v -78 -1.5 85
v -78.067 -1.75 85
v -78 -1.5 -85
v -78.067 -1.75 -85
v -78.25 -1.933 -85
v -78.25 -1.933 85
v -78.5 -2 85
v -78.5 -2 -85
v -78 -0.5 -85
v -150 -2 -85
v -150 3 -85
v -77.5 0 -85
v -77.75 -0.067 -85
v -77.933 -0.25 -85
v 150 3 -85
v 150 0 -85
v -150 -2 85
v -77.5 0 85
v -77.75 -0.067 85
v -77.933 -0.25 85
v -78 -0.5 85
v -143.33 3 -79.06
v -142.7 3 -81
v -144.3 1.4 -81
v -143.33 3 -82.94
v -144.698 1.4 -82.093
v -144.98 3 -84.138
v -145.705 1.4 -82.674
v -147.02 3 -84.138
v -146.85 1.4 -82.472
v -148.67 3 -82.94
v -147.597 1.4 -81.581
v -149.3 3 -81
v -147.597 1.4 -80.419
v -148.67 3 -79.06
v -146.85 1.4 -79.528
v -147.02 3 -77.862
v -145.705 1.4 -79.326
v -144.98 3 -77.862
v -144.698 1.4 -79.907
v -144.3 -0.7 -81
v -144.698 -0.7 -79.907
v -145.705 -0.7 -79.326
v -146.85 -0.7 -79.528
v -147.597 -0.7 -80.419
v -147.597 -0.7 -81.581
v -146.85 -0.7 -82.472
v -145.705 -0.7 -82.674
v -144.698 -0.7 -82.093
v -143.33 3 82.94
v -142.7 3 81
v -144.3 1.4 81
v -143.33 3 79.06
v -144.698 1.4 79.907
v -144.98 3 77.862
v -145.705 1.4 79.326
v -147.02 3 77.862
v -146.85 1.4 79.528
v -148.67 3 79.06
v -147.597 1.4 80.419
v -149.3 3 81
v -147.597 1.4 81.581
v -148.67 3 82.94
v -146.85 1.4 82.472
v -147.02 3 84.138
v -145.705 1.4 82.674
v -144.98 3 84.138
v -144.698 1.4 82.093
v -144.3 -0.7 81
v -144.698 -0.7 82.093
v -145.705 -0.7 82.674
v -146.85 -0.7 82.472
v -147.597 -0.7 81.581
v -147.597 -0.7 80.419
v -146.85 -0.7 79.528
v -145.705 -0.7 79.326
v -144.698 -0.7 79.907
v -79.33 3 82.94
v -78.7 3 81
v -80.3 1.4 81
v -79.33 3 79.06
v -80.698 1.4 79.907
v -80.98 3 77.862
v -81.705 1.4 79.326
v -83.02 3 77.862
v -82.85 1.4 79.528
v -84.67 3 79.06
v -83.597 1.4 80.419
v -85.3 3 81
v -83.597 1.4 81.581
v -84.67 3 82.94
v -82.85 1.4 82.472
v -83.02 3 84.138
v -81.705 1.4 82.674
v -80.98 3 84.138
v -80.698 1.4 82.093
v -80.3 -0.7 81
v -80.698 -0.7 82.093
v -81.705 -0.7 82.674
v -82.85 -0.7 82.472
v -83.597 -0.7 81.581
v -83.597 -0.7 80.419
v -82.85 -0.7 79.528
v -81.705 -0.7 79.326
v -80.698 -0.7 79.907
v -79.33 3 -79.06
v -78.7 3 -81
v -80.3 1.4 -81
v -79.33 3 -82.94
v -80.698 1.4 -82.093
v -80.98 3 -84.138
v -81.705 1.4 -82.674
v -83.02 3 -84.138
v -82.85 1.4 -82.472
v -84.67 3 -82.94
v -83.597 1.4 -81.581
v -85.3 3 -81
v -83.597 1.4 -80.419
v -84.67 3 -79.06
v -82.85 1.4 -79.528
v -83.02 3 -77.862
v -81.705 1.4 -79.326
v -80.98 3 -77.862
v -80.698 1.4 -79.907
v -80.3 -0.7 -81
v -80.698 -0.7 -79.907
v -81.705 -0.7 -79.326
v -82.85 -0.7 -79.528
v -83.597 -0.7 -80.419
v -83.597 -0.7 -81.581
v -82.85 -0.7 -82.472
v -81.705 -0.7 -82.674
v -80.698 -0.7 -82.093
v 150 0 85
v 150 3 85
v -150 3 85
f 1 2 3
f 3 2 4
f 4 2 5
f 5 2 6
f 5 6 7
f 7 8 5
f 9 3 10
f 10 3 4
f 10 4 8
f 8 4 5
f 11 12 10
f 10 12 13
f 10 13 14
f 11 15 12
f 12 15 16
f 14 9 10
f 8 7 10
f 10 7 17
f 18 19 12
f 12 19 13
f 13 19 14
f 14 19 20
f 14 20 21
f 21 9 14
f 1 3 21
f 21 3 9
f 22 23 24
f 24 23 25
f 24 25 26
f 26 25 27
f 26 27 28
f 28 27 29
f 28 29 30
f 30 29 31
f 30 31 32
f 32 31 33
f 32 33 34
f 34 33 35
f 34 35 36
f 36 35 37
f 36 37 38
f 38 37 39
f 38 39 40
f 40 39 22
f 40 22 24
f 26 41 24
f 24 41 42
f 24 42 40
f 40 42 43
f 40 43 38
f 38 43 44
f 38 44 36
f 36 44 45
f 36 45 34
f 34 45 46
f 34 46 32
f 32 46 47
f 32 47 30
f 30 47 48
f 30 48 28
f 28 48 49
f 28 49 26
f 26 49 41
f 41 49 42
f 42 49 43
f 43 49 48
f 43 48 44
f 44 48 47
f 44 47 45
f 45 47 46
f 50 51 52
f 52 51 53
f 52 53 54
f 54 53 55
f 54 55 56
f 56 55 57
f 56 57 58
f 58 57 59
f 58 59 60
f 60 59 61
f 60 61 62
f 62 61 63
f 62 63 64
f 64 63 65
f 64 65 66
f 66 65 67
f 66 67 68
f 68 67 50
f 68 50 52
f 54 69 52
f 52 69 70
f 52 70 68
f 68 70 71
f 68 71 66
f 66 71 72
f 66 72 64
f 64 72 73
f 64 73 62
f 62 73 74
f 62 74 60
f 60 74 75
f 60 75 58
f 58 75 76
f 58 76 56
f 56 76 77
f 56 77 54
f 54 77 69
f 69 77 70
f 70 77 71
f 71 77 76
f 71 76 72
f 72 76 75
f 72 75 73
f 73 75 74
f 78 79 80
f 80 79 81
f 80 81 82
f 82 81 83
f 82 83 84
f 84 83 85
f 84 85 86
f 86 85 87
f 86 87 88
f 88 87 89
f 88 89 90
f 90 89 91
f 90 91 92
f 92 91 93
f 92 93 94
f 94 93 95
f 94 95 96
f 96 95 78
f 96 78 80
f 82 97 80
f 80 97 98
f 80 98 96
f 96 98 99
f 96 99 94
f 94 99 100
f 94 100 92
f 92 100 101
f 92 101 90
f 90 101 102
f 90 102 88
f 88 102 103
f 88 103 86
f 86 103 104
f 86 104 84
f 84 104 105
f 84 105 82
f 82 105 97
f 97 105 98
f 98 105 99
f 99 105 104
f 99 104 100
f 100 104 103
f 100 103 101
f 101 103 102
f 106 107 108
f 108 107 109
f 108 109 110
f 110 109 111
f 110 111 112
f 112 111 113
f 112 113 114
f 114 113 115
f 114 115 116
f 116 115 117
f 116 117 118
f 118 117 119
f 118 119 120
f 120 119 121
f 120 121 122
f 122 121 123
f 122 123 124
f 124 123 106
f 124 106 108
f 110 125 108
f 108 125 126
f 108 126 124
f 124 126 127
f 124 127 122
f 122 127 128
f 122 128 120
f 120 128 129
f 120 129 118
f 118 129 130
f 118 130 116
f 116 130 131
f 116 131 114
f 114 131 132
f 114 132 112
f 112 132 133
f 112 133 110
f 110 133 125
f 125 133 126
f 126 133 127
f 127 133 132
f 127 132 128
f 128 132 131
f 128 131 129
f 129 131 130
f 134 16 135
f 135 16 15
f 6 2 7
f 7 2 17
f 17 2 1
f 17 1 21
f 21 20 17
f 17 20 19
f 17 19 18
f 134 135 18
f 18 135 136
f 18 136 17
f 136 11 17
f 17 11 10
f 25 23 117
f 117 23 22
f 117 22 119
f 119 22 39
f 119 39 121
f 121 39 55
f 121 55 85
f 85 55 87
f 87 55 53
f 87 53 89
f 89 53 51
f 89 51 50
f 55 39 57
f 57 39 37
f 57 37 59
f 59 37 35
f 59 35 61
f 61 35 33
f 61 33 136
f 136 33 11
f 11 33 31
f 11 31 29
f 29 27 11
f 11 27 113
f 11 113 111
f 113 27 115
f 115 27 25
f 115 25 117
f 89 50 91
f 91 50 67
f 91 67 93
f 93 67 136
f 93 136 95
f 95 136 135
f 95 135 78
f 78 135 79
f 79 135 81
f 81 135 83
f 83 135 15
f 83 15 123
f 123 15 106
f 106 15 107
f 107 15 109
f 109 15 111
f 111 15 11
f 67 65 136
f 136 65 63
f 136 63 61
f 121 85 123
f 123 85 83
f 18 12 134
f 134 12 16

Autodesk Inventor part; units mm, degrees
ref_plane "YZ Plane" through (0, 0, 0) normal (1, 0, 0) x (0, 1, 0)
ref_plane "XZ Plane" through (0, 0, 0) normal (0, 1, 0) x (-1, 0, 0)
ref_plane "XY Plane" through (0, 0, 0) normal (0, 0, 1) x (1, 0, 0)
sketch "Эскиз1" plane through (0, 0, 0) normal (0, 1, 0) x (-1, 0, 0)
  line L0 (-150, 85) -> (150, 85)
  line L1 (150, 85) -> (150, -85)
  line L2 (150, -85) -> (-150, -85)
  line L3 (-150, -85) -> (-150, 85)
  line L4 (-150, 85) -> (150, -85) construction
  line L5 (150, 85) -> (-150, -85) construction
  point P0 (0, 0)
  dimension "d0" = 170
  dimension "d1" = 300
extrude "Выдавливание1" add sketch "Эскиз1" along normal blind 3
sketch "Эскиз4" plane through (0, 0, 0) normal (0, -1, 0) x (1, 0, 0)
  line L0 (150, -85) -> (-150, -85) projected
  line L1 (150, 85) -> (150, -85) projected
  line L2 (-150, 85) -> (150, 85) projected
  line L3 (-150, -85) -> (-150, 85) projected
  line L4 (150, -85) -> (-150, -85) projected
  line L5 (-150, -85) -> (-150, 85)
  line L6 (-150, 85) -> (-78, 85)
  line L7 (-78, 85) -> (-78, -85)
  line L8 (-78, -85) -> (-150, -85)
  point P0 (0, 0)
  point P1 (-78, -85)
  point P2 (-78, 85)
  dimension "d17" = 72
extrude "Выдавливание3" add sketch "Эскиз4" along normal blind 2 contours L0 L3 L2 L7
sketch "Эскиз2" plane through (0, 3, 0) normal (0, 1, 0) x (1, 0, 0)
  line L0 (-82, 81) -> (-146, 81) construction
  line L1 (-146, 81) -> (-146, -81) construction
  line L2 (-146, -81) -> (-82, -81) construction
  line L3 (-82, -81) -> (-82, 81) construction
  line L4 (-82, 81) -> (-146, -81) construction
  line L5 (-146, 81) -> (-82, -81) construction
  line L6 (0, 0) -> (-69.8255, 0) construction
  line L7 (-150, 85) -> (-150, -85) construction
  point P0 (-114, 0)
  point P1 (-114, 0)
  dimension "d4" = 162
  dimension "d5" = 4
  dimension "d6" = 64
hole "Отверстие1" at (-146, 3, 81) at (-82, 3, 81) at (-146, 3, -81) at (-82, 3, -81) direction (0, -1, 0) diameter 3.4 depth 3.7 countersink diameter 6.6 countersink angle 90 clearance for "с потайной головкой ГОСТ 12876-67" size "M3" standard "ГОСТ"
fillet "Сопряжение1" radius 0.5 2 edges at (-78, 0, 0) (-78, -2, 0)
properties part number "форточка"
